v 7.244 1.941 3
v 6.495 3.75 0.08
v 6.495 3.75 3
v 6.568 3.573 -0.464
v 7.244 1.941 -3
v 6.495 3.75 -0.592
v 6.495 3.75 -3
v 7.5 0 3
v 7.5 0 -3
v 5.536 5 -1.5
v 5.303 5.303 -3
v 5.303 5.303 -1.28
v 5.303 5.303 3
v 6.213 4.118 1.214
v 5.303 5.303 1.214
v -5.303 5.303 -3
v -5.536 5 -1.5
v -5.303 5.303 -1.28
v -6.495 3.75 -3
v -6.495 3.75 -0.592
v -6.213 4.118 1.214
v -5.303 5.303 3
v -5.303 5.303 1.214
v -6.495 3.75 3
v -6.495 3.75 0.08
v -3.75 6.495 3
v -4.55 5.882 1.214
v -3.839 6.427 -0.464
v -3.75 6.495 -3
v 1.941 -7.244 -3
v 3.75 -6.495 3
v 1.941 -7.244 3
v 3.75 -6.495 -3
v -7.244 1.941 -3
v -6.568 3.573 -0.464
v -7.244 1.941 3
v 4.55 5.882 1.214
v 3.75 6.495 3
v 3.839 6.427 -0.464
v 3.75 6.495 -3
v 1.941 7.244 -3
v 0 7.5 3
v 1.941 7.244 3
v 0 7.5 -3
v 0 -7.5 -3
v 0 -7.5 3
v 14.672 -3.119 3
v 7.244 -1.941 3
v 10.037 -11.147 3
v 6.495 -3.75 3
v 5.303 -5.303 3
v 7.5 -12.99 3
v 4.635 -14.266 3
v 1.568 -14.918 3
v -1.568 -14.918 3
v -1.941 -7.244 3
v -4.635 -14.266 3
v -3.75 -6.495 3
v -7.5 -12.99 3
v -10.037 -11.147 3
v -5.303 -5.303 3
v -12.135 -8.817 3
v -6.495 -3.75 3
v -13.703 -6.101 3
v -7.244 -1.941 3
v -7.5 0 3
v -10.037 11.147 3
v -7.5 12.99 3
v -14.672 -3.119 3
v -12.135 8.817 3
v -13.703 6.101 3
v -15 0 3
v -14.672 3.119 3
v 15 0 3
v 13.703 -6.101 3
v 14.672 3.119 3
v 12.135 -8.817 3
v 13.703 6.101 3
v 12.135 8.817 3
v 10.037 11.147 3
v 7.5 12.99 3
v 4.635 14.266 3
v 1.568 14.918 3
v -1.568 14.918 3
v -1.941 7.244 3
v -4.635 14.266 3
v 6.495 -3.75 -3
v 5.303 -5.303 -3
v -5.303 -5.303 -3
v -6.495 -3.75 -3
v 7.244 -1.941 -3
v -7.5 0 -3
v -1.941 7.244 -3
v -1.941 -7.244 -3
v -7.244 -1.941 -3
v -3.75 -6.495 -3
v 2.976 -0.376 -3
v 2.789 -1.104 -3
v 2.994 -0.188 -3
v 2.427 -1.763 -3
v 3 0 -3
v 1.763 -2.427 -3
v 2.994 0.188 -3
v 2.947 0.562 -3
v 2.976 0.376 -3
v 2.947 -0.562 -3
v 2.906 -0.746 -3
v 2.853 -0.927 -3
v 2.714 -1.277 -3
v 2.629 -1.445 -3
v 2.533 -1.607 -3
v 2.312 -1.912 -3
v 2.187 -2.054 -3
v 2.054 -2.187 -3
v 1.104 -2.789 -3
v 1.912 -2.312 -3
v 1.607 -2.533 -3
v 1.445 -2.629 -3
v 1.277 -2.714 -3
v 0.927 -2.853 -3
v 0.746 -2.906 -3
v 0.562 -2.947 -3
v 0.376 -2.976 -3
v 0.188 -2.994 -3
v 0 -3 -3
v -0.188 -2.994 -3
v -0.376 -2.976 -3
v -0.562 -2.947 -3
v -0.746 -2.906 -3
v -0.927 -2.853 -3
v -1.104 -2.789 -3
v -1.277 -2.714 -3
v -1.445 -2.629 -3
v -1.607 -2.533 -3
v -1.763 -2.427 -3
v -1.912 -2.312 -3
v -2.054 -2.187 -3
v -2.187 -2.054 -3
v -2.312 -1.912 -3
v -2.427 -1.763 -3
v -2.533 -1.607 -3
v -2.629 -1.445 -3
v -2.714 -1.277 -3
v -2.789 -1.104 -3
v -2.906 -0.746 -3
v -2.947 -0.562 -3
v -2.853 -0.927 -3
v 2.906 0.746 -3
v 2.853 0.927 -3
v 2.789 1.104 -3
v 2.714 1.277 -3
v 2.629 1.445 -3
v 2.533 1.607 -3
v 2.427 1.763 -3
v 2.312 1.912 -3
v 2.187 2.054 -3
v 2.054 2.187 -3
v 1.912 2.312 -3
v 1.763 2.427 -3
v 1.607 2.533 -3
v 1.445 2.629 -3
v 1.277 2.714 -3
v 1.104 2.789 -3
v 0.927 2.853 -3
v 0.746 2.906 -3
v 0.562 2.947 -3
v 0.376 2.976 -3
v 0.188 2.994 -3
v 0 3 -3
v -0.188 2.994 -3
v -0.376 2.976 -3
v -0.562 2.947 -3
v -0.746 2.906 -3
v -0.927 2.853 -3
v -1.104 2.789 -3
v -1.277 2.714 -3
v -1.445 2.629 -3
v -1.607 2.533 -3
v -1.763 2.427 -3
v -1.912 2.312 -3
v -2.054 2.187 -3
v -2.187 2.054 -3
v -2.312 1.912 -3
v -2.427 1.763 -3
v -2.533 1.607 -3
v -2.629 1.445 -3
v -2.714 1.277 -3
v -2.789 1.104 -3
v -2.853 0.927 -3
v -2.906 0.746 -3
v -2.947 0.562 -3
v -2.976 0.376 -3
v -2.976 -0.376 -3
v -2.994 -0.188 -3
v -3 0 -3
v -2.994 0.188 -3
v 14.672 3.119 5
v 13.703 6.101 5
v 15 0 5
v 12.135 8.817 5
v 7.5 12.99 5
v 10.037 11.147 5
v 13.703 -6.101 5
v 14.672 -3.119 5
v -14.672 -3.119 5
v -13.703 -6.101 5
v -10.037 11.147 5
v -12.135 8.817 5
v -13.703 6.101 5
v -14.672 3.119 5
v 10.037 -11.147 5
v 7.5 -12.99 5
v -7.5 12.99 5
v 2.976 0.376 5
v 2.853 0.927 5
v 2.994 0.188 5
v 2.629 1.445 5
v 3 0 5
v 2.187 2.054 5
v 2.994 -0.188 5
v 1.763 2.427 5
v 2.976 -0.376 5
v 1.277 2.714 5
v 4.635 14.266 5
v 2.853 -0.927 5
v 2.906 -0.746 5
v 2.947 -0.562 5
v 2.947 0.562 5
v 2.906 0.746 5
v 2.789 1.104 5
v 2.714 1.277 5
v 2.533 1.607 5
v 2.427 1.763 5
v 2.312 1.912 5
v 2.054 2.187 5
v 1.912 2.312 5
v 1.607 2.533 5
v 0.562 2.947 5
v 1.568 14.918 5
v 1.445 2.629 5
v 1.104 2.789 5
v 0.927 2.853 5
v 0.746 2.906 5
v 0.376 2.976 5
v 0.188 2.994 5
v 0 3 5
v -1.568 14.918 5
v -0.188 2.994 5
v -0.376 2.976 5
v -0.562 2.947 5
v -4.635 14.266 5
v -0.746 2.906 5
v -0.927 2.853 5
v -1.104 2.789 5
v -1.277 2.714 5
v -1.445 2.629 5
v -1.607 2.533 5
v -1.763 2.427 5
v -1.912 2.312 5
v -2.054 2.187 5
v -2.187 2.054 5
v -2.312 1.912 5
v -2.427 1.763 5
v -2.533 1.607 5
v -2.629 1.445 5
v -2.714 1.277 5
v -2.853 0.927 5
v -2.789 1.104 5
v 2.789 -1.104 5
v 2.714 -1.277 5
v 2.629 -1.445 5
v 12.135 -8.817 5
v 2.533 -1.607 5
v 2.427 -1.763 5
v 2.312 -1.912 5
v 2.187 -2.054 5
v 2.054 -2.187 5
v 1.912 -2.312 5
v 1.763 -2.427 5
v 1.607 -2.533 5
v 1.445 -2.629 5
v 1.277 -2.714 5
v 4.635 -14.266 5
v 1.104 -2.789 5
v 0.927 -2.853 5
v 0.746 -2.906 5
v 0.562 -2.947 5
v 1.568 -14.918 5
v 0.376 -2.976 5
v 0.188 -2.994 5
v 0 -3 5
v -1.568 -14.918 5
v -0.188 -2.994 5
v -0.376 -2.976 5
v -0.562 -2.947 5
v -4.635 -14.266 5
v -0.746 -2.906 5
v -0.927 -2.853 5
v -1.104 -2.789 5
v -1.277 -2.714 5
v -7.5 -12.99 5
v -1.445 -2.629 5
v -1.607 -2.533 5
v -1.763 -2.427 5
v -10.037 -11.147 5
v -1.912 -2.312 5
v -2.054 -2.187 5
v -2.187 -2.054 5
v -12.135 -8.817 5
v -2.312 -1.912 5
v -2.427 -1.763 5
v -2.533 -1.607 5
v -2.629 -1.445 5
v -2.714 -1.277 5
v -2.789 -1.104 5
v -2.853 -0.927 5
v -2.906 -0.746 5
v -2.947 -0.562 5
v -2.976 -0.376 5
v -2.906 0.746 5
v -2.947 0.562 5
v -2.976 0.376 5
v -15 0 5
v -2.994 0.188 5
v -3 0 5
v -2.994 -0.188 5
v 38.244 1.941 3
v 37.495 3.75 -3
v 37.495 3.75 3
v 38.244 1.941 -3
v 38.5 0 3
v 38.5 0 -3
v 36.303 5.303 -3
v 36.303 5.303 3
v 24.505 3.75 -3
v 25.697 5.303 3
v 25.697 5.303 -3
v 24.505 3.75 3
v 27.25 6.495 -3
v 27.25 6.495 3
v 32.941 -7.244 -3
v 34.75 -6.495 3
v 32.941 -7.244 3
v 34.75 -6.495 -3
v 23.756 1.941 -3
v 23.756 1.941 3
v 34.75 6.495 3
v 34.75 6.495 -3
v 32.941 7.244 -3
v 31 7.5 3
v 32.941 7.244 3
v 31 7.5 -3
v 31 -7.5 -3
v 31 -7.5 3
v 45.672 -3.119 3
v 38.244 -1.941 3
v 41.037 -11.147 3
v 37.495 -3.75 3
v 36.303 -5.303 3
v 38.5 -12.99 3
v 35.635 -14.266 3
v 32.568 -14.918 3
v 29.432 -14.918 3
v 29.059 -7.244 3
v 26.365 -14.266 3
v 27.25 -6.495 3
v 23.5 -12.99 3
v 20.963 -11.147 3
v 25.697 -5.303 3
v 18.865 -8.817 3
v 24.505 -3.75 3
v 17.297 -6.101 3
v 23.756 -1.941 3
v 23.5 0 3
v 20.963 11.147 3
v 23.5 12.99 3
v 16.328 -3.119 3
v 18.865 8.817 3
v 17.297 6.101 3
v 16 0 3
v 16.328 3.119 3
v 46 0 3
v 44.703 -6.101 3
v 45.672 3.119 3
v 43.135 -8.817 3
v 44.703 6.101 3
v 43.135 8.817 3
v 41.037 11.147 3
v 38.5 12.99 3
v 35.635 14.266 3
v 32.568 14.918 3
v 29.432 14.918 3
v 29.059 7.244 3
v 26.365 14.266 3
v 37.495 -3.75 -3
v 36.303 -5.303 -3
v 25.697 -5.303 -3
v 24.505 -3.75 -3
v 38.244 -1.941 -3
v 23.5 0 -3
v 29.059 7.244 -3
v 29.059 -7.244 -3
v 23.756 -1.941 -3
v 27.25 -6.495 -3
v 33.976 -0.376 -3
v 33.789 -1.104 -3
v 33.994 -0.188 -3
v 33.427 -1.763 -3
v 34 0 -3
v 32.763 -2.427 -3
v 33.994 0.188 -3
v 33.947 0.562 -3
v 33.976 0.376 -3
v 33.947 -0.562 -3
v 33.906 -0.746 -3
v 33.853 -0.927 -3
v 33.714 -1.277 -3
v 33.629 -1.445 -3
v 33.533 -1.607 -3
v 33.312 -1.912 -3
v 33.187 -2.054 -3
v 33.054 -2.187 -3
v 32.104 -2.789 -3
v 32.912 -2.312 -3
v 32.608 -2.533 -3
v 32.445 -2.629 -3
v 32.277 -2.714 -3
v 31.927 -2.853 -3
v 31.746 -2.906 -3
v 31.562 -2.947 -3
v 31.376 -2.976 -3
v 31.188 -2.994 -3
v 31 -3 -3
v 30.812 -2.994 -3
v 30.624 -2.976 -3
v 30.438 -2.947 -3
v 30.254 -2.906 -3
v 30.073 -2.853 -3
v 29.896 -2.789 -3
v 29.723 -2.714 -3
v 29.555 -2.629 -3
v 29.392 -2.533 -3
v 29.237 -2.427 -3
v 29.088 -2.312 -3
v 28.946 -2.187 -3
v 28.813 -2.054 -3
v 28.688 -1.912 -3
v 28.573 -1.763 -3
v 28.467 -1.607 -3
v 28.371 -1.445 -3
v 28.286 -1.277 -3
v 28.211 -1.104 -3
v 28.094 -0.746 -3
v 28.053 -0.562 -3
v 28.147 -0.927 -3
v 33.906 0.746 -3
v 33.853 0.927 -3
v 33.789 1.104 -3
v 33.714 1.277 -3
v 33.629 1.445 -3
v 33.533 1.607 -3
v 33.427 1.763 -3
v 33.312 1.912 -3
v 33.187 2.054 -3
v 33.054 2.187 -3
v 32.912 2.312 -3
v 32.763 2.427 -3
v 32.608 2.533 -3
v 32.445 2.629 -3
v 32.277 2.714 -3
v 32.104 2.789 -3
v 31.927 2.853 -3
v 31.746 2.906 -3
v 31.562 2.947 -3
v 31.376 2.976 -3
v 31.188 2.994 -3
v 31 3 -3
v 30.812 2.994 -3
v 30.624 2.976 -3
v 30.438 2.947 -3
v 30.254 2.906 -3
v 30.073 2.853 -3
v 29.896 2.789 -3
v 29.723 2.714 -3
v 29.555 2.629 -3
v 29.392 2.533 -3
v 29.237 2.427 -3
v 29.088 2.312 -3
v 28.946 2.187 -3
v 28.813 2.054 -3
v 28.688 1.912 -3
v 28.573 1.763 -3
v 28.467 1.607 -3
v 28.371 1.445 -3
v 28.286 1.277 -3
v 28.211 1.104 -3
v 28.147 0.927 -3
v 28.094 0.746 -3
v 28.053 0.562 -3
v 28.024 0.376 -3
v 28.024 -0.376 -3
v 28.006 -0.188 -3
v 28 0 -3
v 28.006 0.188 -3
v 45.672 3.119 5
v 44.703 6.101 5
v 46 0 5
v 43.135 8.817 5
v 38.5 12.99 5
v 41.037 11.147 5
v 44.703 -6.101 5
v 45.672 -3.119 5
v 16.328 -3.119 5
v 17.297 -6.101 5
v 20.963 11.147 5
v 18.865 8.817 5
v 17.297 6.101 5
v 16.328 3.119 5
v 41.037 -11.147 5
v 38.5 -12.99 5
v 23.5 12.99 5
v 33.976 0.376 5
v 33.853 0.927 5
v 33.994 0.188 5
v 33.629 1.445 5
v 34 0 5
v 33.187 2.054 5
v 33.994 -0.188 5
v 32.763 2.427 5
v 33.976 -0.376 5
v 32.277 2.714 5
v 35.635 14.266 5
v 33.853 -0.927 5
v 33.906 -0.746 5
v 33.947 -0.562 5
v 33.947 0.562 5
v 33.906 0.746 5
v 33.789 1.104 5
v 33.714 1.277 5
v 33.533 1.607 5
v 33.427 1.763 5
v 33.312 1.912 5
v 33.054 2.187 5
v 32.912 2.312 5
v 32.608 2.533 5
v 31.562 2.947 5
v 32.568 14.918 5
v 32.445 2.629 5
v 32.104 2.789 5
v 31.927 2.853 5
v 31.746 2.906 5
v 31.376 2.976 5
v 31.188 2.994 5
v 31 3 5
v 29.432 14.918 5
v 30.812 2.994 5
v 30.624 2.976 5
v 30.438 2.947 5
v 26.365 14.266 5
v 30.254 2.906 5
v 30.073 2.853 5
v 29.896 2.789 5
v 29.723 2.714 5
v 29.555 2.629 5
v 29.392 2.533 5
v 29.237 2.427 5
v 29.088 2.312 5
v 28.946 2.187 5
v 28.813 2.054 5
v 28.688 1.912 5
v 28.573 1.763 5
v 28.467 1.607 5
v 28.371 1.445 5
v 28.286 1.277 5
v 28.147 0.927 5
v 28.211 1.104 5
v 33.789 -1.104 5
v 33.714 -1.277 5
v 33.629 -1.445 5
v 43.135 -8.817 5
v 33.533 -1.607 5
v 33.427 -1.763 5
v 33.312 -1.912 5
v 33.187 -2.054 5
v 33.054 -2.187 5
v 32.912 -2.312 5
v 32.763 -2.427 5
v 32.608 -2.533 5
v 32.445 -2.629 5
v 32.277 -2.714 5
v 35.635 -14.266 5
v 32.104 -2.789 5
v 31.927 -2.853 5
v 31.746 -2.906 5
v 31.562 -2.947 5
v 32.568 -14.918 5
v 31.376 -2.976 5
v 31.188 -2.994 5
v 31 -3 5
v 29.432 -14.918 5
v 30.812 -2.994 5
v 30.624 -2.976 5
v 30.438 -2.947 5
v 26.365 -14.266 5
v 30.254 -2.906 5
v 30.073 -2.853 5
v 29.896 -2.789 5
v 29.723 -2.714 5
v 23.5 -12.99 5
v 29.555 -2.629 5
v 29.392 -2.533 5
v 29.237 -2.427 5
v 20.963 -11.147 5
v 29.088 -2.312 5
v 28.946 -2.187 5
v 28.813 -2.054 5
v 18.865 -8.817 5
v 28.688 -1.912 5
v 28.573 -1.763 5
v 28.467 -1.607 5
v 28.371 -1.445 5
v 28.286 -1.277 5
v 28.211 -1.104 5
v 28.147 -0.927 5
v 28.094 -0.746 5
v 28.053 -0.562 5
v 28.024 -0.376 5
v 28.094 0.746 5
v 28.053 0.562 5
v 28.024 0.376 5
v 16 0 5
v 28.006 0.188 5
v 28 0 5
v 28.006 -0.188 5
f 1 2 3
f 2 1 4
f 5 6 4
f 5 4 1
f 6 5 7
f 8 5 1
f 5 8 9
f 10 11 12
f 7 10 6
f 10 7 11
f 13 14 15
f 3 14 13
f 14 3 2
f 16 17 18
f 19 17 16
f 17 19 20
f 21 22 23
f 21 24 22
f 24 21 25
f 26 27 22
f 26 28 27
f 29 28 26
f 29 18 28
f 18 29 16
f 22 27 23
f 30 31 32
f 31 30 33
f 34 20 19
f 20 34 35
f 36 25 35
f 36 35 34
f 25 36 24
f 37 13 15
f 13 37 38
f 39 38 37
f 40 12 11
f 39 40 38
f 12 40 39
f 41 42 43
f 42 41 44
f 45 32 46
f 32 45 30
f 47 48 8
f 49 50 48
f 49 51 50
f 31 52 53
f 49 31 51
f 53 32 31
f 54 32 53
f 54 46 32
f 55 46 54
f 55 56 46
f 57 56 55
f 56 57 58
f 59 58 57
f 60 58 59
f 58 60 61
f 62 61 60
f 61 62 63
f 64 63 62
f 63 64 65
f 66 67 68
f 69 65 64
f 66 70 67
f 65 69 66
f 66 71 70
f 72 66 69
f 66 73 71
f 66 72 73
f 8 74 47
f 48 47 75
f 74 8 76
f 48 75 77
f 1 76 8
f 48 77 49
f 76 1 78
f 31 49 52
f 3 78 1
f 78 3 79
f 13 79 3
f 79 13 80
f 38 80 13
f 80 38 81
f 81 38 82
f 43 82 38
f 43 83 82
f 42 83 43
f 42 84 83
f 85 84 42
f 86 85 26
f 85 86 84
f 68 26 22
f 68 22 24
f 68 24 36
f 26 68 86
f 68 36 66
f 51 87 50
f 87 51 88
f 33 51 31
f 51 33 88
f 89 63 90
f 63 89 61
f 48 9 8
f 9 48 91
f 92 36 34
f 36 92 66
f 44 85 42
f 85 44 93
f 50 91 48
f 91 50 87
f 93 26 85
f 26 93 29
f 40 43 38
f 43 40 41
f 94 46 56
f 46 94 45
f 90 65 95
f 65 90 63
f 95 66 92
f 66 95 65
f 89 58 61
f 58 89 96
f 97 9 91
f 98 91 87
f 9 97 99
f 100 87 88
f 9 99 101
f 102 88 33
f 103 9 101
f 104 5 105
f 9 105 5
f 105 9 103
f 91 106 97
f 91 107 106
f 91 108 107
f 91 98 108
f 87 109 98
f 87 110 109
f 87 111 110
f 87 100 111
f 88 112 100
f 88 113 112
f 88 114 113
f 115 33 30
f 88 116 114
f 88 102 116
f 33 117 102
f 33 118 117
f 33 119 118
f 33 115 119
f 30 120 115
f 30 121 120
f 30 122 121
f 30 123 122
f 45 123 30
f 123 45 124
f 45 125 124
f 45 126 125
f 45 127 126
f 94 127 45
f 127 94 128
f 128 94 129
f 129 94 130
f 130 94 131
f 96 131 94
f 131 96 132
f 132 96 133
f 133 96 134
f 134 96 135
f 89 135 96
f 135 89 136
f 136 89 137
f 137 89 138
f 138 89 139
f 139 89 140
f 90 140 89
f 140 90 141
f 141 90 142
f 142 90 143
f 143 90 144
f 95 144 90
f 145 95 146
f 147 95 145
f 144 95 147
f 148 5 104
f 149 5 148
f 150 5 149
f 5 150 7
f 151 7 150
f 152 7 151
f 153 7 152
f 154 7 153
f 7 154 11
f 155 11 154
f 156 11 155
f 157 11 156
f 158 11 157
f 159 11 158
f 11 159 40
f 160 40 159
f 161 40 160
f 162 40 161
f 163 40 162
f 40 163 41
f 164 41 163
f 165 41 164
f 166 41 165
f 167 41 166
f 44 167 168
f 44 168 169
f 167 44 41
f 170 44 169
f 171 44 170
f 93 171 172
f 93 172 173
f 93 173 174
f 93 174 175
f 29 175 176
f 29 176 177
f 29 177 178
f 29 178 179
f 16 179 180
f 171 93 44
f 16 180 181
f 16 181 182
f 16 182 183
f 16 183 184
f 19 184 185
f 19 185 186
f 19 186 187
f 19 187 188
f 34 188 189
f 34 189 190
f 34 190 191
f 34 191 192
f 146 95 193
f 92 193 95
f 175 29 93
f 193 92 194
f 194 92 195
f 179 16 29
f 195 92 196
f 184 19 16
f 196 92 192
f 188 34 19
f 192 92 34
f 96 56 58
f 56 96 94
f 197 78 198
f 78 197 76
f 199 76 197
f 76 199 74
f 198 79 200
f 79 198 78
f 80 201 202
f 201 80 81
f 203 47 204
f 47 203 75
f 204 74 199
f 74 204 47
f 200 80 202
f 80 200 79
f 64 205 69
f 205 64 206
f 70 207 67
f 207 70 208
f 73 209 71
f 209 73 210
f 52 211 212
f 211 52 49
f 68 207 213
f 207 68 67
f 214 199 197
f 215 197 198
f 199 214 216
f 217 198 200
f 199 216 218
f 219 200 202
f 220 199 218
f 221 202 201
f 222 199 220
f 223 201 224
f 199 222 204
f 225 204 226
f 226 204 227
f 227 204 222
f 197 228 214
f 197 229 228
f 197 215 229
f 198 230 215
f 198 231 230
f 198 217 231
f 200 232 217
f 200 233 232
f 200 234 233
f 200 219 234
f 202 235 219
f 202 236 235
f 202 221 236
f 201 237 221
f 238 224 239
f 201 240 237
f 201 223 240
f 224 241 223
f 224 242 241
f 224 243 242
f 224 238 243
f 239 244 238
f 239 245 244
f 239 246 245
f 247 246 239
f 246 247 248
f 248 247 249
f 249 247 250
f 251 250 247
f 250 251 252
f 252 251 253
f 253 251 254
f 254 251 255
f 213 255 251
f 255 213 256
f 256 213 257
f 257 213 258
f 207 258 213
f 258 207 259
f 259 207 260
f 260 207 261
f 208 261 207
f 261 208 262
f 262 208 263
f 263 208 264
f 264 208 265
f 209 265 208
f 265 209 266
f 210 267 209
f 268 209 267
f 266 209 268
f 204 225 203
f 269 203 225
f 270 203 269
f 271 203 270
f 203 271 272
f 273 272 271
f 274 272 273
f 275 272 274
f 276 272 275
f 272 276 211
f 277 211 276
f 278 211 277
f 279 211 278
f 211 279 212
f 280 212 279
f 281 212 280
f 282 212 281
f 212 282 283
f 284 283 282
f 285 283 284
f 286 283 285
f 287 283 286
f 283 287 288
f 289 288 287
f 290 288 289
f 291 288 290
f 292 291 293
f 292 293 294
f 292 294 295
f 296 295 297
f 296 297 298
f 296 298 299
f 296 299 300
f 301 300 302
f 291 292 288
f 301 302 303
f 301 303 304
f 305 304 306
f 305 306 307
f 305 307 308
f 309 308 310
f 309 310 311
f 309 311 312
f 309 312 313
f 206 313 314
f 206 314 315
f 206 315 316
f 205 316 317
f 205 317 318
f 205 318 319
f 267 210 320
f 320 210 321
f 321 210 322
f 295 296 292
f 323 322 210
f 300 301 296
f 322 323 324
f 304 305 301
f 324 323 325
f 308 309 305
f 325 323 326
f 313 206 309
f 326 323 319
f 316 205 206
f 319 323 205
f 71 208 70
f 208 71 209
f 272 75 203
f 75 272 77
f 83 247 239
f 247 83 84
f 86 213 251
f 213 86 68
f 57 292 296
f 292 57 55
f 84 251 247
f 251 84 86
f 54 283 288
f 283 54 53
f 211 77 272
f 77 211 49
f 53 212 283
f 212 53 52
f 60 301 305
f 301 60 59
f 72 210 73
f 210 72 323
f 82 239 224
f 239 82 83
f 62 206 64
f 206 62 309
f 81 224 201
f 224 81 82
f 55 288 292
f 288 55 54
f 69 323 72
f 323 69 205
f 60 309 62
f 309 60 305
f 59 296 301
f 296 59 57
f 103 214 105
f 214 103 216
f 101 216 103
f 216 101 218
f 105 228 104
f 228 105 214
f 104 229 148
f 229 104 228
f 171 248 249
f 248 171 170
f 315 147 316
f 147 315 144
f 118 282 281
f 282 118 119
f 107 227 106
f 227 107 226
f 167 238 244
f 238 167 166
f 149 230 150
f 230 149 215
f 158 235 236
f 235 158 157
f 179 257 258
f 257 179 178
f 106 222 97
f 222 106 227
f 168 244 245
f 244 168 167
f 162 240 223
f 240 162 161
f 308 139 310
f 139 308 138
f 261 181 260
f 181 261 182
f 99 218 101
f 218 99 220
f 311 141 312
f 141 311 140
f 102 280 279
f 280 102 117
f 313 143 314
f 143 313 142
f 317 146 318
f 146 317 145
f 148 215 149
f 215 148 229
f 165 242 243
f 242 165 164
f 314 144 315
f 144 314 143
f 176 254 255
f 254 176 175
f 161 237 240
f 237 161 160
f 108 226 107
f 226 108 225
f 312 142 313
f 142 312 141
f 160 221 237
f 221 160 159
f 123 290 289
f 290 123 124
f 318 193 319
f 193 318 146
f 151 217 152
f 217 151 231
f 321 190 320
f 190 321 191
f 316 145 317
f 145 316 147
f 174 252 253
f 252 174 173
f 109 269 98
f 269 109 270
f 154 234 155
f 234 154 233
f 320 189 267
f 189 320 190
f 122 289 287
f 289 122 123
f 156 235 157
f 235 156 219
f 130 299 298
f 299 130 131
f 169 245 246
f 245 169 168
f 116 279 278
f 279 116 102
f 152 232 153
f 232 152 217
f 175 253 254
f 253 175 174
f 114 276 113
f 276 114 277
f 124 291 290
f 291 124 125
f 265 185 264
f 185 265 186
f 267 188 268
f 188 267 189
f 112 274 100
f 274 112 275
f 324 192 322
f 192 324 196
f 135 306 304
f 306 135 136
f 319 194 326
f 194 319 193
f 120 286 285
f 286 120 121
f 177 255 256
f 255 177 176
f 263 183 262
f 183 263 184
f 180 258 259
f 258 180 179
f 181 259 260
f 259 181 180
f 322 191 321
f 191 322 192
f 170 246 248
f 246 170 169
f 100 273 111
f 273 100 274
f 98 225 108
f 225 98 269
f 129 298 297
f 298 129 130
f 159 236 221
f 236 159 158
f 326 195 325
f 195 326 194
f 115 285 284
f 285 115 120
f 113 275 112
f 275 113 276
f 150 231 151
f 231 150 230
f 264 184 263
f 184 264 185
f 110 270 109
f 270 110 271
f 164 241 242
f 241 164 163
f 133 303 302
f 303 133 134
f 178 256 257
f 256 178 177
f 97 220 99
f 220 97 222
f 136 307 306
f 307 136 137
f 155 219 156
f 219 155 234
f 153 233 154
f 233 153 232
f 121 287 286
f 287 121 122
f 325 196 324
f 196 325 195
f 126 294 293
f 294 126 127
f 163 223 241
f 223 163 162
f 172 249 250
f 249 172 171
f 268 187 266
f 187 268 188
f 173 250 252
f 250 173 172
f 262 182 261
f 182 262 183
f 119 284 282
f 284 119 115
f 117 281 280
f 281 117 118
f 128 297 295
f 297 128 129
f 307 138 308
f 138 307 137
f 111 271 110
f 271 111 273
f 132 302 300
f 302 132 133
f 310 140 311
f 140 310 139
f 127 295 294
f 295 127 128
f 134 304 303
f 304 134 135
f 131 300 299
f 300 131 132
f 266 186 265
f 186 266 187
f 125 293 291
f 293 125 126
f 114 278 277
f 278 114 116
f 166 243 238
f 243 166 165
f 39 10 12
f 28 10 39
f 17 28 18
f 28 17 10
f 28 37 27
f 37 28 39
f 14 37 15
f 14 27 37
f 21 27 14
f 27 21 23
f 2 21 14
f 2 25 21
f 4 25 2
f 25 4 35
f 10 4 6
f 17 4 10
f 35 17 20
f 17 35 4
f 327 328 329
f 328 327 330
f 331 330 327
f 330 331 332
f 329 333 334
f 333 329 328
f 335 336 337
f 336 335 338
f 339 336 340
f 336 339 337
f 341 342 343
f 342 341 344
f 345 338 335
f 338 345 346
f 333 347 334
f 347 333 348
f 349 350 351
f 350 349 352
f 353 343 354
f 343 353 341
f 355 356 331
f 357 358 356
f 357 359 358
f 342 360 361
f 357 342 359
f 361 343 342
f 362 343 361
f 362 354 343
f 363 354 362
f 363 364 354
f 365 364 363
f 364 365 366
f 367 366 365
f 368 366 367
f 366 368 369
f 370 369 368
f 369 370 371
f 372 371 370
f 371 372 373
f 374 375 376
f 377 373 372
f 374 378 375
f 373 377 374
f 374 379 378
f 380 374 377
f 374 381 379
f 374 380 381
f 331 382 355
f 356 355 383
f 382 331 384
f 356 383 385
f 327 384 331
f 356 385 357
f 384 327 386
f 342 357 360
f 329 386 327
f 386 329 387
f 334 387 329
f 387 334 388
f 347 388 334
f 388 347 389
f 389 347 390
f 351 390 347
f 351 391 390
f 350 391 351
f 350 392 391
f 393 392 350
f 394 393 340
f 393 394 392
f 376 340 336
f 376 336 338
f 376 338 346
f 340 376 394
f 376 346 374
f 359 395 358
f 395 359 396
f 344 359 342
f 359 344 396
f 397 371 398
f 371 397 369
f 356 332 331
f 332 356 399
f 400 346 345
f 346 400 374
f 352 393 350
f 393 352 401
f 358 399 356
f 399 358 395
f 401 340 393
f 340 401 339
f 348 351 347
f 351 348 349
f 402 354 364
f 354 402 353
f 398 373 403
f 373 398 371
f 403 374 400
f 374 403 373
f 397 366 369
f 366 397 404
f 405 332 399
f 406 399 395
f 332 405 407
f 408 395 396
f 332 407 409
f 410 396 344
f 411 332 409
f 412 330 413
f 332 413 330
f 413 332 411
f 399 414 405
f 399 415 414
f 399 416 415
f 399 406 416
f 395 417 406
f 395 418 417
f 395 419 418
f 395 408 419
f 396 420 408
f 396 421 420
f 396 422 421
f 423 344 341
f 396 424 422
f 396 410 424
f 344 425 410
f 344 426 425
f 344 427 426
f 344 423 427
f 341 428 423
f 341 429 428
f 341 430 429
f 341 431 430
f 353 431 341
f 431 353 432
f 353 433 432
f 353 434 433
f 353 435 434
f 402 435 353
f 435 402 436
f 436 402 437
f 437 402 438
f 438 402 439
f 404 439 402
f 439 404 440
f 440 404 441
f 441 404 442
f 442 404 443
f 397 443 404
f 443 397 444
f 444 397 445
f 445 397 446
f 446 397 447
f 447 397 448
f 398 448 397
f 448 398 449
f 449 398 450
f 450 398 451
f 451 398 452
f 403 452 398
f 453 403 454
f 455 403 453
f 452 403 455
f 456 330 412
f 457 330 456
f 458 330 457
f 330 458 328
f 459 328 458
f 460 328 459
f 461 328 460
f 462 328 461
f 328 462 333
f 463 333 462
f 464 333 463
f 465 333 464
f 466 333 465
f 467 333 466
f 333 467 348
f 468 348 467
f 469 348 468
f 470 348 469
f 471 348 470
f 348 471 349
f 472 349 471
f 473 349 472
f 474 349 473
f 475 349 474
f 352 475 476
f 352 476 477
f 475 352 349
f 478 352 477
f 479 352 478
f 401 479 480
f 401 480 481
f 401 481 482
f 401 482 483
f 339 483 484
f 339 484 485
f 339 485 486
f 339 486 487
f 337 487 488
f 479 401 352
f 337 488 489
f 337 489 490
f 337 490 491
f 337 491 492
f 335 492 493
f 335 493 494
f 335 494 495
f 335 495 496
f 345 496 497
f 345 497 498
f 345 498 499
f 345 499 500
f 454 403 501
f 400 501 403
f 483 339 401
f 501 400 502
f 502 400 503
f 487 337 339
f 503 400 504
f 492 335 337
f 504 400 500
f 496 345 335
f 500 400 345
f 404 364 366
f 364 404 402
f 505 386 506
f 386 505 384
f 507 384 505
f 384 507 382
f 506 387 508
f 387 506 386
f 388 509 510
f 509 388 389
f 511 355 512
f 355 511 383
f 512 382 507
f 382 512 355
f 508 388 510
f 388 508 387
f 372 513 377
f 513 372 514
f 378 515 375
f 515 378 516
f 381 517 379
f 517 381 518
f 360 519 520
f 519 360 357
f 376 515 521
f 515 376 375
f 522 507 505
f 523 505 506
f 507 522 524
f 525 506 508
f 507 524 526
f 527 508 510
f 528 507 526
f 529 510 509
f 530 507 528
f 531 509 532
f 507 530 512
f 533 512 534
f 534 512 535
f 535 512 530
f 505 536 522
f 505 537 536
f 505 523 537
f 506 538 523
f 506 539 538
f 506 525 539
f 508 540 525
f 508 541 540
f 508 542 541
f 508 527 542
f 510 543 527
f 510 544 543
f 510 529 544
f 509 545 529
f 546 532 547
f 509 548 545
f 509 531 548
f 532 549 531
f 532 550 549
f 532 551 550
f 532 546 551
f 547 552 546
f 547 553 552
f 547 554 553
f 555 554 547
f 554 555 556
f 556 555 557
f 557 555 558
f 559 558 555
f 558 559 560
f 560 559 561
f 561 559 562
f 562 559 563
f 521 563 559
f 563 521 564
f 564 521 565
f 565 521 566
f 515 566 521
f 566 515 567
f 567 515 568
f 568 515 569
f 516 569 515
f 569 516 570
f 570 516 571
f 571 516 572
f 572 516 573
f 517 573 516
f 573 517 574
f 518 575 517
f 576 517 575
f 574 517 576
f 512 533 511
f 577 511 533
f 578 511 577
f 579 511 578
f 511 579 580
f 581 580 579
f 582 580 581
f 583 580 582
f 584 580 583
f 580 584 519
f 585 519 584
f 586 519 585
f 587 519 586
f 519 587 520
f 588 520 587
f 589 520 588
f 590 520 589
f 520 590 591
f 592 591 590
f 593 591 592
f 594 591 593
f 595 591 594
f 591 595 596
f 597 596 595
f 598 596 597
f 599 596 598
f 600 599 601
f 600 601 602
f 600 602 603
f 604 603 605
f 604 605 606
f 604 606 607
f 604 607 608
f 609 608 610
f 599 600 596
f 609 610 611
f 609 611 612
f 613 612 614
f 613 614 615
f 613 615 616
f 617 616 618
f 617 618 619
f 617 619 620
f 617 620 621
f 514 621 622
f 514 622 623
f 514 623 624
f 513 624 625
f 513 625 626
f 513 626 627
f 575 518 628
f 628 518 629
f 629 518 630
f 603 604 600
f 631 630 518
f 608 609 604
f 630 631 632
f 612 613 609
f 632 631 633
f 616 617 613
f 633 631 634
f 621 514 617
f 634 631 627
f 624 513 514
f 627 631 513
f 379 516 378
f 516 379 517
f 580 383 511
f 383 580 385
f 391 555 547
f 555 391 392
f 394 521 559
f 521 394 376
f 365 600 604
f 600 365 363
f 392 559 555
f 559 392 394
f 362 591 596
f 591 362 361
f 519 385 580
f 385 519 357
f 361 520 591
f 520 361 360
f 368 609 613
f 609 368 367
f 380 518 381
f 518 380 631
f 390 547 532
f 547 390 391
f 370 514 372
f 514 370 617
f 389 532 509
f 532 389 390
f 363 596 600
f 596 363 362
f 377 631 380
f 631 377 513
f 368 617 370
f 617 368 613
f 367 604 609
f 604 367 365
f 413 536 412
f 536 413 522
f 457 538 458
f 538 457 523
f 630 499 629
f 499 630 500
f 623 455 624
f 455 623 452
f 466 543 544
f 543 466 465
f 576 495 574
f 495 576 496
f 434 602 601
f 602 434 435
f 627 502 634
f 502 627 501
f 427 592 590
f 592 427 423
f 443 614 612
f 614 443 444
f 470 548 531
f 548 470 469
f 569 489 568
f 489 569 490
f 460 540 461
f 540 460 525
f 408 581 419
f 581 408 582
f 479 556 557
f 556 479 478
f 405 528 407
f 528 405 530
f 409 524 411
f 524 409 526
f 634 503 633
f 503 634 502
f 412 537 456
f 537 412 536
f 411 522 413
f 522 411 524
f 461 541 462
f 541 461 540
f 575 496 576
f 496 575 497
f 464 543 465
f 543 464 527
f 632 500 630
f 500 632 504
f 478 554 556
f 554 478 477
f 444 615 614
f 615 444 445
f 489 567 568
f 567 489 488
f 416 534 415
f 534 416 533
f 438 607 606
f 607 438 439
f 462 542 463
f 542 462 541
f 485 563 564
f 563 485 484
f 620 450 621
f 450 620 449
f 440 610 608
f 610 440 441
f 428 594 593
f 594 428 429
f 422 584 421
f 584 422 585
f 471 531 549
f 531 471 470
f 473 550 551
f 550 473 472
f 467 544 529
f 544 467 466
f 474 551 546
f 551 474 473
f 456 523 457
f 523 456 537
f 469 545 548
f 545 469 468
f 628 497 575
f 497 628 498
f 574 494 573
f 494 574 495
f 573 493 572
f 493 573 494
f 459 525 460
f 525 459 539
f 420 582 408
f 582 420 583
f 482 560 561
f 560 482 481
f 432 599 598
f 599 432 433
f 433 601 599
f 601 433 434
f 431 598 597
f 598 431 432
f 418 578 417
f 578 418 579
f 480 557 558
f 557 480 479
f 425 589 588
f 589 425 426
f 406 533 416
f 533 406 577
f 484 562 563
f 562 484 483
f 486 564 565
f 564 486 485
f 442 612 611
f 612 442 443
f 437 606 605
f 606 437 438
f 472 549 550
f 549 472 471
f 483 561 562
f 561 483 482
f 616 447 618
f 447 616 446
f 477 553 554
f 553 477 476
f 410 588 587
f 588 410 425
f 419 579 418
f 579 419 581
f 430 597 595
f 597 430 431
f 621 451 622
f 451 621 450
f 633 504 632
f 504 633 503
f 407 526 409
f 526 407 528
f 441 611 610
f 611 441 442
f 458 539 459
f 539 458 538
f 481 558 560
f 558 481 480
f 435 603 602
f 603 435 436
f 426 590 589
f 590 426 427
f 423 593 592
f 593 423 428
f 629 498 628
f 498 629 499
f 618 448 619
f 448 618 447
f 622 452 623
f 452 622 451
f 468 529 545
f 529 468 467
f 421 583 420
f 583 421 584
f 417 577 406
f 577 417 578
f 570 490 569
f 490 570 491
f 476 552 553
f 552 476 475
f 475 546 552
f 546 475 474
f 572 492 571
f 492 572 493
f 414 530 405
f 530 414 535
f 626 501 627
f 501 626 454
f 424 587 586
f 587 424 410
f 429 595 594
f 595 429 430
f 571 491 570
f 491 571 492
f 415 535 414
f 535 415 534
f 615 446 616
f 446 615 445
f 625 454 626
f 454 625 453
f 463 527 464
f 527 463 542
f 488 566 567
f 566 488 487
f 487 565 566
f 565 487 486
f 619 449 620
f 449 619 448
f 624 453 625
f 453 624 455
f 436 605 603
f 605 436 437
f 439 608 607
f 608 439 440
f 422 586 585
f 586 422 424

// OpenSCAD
hole_depth      = 20;
hole_diameter   = 6;
module hole() {
    cylinder(hole_depth, d=hole_diameter, $fn=100, center=true);
}

string_hole_diameter   = 3;
string_hole_depth      = 20;

module string_hole() {
    cylinder(string_hole_depth, d=string_hole_diameter, 
    center=true);
}

ring_diameter = 30;
ring_height   = 2;
module ring() {
    cylinder(ring_height, d=ring_diameter, center=true);
}

small_section_diameter  = 15;
part_one_depth          = 6;
string_hole_y_offset    = small_section_diameter / 3;
string_hole_z_offset    = 0;
ring1_z_offset          = part_one_depth / 2 + ring_height / 2;

module part_one() {

    difference() {
        union() { 
            cylinder(part_one_depth, 
                 d=small_section_diameter, center=true);
             translate([0, 0, ring1_z_offset]) { ring(); }
        }
        hole();
        
        translate([0, string_hole_y_offset, string_hole_z_offset]) {
            rotate([0, 90, 0]) { string_hole(); }
        }
        
    }
}

module part_two() {
    difference() {
        union() { 
            cylinder(part_one_depth, 
                 d=small_section_diameter, center=true);
             translate([0, 0, ring1_z_offset]) { ring(); }
        }
        hole();
    }
}

part_one();
translate([ring_diameter + 1, 0, 0]) { part_two(); }
